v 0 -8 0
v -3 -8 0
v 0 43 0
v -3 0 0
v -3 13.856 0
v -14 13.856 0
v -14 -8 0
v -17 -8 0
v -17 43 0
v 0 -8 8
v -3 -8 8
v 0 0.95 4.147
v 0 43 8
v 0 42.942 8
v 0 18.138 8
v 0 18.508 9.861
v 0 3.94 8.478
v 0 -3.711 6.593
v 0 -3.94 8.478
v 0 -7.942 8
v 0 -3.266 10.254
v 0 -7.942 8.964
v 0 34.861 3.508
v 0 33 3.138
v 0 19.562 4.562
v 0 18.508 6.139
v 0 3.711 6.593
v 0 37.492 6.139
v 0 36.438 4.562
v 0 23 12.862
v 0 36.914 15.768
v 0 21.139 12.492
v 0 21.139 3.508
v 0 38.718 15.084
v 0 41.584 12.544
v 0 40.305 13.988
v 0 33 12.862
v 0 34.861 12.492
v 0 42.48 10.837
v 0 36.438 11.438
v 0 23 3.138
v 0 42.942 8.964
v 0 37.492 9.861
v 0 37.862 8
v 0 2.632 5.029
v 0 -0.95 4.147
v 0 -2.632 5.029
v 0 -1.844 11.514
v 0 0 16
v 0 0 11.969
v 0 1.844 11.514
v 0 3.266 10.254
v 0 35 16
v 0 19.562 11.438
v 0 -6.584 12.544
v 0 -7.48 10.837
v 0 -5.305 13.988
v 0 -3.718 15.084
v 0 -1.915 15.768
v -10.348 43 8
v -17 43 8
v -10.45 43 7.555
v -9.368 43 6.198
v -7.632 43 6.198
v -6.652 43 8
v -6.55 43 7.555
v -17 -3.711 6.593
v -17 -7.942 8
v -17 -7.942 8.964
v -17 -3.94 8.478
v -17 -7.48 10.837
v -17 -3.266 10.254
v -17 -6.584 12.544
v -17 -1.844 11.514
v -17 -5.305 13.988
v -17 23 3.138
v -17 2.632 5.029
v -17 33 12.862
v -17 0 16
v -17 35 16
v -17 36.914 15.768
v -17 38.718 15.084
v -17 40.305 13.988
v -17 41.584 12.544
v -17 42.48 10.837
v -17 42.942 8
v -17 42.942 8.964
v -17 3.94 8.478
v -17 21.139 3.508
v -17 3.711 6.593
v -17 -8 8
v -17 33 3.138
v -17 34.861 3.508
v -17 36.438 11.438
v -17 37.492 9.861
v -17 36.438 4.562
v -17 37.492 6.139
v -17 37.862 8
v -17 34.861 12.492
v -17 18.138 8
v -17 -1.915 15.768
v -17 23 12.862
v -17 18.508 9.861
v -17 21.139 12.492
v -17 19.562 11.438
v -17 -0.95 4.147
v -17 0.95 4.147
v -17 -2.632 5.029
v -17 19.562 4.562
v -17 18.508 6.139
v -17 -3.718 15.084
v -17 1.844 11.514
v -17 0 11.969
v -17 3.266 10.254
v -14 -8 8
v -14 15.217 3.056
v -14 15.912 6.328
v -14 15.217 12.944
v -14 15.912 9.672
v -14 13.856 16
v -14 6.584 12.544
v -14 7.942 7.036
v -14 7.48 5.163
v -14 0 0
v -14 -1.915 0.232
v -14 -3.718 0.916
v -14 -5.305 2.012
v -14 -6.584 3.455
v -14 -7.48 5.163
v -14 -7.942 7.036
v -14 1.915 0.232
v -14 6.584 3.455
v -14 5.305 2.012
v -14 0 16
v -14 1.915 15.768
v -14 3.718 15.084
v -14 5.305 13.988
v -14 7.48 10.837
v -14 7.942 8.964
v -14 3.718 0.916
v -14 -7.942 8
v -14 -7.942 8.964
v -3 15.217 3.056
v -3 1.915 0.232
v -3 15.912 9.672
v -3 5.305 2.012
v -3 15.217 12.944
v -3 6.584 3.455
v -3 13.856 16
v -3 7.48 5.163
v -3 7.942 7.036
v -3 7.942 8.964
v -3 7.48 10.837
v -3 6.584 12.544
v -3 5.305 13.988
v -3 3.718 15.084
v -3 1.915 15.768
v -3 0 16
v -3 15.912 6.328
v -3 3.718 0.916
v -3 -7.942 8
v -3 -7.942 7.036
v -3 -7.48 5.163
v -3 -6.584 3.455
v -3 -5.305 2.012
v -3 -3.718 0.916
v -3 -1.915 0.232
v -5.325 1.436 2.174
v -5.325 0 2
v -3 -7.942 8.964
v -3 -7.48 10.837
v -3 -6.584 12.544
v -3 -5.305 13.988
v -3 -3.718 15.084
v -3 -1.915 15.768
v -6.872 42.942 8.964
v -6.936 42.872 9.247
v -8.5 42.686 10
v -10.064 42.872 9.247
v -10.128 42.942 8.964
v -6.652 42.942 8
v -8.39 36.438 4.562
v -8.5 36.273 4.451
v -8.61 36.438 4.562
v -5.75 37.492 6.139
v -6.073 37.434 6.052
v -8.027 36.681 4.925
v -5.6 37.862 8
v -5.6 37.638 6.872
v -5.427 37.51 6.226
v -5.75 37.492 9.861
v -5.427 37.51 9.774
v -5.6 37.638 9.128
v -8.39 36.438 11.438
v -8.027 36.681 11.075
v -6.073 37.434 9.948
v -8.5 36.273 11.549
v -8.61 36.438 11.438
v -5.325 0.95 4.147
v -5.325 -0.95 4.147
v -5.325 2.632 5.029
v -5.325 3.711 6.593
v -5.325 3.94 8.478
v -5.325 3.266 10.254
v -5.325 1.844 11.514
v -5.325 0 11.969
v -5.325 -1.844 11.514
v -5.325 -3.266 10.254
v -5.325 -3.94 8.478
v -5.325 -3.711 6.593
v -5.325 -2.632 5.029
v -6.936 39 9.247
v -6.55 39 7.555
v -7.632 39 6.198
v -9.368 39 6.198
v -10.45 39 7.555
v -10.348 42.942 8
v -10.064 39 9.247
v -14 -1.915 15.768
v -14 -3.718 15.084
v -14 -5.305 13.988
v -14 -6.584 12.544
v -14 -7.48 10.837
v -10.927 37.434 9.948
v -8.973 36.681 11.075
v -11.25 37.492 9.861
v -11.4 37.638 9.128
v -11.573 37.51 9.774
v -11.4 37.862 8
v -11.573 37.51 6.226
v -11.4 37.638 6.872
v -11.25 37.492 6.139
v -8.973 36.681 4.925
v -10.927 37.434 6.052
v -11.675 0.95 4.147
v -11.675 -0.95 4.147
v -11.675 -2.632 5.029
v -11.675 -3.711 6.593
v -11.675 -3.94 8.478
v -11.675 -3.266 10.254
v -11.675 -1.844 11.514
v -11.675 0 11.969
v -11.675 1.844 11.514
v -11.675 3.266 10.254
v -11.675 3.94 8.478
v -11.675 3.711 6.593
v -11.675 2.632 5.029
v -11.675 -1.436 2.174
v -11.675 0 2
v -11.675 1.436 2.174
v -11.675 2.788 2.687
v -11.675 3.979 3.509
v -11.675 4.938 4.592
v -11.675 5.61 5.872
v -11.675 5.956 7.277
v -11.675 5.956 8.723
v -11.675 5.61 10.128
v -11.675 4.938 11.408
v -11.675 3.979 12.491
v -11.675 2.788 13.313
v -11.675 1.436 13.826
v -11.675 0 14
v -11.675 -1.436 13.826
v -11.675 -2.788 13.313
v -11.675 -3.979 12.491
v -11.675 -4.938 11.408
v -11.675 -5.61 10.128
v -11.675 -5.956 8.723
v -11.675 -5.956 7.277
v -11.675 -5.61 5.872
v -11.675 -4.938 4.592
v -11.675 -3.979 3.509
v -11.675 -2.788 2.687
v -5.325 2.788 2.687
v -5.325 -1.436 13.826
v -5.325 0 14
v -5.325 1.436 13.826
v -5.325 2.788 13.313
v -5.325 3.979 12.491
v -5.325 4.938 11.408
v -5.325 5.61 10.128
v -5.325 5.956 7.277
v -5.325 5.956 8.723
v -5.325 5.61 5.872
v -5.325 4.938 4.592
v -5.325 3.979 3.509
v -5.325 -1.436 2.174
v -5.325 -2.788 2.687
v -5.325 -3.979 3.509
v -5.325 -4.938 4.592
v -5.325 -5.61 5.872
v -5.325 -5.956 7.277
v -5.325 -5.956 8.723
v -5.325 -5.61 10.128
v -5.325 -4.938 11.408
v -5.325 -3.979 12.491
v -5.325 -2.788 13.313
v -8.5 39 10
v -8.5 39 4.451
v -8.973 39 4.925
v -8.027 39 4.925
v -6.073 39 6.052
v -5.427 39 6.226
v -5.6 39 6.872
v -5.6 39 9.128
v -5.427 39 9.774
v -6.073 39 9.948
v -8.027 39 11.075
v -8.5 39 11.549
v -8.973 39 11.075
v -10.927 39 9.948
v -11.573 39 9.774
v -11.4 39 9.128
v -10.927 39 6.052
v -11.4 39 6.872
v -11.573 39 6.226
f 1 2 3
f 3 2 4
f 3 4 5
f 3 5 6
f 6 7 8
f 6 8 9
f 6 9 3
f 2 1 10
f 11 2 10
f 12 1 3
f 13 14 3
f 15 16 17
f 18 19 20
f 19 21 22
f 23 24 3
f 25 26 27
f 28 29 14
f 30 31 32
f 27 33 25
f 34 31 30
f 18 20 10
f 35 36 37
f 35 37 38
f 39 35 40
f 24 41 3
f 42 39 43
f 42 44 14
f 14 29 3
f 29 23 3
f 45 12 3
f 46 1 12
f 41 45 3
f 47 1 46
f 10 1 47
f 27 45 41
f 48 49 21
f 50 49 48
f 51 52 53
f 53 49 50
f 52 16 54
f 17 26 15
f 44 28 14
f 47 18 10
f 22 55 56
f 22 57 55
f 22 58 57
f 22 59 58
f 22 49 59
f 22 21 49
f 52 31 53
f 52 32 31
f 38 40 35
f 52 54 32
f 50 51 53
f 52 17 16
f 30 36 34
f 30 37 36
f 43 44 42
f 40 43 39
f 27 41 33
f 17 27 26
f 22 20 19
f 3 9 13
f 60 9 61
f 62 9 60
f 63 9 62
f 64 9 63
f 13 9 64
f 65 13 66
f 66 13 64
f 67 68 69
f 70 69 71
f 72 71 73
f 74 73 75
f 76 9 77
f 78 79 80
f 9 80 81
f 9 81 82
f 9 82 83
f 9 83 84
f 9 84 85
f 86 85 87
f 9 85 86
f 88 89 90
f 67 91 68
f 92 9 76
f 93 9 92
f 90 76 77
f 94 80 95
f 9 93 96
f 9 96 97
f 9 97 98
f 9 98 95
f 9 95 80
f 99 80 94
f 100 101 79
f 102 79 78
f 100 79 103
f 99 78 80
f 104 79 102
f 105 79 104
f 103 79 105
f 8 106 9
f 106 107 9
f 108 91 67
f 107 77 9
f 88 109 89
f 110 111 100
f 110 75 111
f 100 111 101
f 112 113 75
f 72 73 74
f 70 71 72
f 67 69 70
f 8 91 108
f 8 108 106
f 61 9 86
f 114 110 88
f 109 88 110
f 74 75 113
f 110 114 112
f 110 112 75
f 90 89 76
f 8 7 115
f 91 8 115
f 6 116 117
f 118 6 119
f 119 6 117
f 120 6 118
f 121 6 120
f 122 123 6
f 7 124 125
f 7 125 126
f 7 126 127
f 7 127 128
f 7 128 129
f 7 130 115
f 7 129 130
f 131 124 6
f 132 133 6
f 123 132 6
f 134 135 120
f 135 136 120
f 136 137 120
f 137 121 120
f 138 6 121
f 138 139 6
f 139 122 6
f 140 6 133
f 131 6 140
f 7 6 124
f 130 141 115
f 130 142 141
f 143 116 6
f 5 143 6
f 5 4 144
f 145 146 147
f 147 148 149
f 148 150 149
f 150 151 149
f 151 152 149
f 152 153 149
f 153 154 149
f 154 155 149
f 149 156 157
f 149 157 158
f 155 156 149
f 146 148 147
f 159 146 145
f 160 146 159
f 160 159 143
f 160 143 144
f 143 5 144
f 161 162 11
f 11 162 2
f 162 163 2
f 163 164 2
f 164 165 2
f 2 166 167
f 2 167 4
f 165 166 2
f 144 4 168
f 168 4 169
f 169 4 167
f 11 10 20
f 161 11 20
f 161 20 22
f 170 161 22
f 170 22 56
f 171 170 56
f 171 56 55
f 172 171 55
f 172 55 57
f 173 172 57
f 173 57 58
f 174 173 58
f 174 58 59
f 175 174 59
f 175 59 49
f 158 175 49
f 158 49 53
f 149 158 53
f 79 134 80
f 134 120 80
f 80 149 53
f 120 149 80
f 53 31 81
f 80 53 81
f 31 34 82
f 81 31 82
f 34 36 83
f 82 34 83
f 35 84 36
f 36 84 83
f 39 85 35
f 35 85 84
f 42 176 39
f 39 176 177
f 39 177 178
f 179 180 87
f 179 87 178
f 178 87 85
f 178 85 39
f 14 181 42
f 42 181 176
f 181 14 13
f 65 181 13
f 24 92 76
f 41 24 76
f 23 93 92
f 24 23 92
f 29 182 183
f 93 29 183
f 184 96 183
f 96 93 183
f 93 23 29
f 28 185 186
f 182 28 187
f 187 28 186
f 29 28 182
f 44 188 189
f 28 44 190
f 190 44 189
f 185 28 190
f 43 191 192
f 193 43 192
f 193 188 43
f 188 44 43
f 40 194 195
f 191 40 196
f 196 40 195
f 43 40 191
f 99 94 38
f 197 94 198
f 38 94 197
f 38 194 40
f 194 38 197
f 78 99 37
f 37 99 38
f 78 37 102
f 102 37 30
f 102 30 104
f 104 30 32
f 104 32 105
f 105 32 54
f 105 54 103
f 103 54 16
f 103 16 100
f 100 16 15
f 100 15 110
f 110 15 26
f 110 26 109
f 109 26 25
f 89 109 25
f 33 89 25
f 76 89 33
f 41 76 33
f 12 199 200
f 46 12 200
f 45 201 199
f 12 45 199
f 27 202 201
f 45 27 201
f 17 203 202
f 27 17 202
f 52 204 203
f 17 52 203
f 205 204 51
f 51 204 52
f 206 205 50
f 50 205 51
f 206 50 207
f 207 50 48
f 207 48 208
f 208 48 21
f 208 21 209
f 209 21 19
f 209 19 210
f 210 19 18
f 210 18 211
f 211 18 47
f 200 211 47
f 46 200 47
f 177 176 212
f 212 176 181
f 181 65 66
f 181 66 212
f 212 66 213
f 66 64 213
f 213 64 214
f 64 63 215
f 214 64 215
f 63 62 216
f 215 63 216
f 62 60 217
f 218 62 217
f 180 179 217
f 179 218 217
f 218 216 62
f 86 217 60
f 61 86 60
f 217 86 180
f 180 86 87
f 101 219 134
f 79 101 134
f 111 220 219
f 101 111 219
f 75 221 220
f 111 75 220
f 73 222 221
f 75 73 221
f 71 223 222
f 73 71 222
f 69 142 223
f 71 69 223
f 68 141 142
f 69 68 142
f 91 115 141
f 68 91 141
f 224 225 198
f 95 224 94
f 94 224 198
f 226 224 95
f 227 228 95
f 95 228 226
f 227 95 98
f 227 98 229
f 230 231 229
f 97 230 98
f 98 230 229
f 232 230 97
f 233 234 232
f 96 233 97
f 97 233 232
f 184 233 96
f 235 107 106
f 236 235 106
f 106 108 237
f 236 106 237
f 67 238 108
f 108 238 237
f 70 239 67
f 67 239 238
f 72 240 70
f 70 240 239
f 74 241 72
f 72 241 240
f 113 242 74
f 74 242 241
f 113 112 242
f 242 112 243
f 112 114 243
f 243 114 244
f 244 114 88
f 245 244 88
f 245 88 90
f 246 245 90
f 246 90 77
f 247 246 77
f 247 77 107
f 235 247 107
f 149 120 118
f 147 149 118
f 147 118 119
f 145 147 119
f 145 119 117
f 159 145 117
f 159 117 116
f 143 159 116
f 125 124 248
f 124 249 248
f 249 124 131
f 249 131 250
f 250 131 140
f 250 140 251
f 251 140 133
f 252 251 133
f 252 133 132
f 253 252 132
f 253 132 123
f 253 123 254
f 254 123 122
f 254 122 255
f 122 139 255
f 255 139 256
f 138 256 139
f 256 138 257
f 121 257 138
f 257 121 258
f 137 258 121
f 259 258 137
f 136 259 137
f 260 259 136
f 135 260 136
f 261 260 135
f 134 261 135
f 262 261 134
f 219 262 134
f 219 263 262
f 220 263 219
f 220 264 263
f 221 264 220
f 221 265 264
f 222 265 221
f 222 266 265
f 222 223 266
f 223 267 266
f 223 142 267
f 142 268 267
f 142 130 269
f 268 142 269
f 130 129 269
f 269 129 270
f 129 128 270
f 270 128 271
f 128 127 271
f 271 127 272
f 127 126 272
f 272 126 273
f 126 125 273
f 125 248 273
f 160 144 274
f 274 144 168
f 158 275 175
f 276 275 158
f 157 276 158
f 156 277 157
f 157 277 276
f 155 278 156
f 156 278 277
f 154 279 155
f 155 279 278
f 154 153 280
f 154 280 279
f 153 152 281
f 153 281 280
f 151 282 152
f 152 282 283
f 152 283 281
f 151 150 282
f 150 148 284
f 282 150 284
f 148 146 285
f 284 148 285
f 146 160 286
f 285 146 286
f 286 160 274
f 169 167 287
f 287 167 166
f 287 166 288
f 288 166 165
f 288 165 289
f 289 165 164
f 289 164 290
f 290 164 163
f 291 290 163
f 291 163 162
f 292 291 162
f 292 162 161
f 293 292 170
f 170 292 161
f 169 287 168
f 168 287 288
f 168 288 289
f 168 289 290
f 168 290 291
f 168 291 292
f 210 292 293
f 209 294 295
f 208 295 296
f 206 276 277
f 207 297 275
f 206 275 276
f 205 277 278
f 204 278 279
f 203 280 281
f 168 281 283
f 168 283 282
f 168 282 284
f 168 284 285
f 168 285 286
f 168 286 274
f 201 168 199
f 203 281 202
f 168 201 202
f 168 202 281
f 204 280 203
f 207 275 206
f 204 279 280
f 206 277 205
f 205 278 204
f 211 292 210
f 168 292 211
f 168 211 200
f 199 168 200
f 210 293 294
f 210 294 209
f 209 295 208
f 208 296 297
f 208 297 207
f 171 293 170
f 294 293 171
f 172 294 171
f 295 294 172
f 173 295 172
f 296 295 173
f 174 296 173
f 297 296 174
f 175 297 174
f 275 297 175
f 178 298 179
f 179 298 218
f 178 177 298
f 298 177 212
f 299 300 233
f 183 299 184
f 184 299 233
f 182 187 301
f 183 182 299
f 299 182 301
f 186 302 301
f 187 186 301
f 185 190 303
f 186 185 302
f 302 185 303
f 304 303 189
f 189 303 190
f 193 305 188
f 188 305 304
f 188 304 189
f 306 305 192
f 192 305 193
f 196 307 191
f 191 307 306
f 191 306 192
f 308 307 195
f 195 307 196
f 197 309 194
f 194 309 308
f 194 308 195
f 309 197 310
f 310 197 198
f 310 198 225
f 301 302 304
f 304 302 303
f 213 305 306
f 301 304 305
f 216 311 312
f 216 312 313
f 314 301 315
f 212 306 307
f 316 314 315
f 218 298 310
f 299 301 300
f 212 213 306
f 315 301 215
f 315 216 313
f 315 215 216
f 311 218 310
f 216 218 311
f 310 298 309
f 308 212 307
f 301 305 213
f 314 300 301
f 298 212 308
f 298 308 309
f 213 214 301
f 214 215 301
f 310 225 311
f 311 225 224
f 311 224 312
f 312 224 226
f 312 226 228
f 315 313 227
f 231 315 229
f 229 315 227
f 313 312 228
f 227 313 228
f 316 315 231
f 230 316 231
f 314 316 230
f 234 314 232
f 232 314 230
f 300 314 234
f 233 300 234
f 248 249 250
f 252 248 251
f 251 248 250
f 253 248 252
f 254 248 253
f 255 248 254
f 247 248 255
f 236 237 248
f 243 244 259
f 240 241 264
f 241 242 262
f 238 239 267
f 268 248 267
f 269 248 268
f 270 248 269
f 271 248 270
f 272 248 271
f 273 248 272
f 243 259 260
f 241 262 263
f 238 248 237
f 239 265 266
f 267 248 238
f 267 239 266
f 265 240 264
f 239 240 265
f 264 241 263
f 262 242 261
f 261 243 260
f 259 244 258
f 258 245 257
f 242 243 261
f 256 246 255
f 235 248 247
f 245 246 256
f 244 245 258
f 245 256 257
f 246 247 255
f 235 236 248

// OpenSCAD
// nelsoncs 2013Jun05 - NCSAppSoft.com
// modified to support:
// 1. U.S. measurements for y-idler for 3/8 in. rod, 5/16 in. bolt holding 608ZZG bearing
// 2. "rotate" was causing problems with non-manifold edges around the "fake bearing" 
// 
// Original based on:
// PRUSA iteration3
// Y idler
// GNU GPL v3
// Josef Průša <iam@josefprusa.cz> and contributors
// http://www.reprap.org/wiki/Prusa_Mendel
// http://prusamendel.org

wall_thickness=3;
opening_width=11;
external_width=opening_width+wall_thickness*2;
opening_diameter = 32;
bearing_width = 6.35; 		// 1/4 in.
bearing_ID = 7.9375; 			// 5/16 in.
rod_diameter = 9.525 + 0.2; 	// 3/8 in. + slack space

tensioner_length = 10;

// increase the elongation if the bearing opening intersects
// with the M10 rod opening.
elongation = 1;


module nut(d,h,horizontal=true){
    cornerdiameter =  (d / 2) / cos (180 / 6);
    cylinder(h = h, r = cornerdiameter, $fn = 6);
    if(horizontal){
        for(i = [1:6]){
			rotate([0,0,60*i]) 
			translate([-cornerdiameter-0.2,0,0]) 
			rotate([0,0,-45]) 
			cube([2,2,h]);
        }
    }
}

module y_idler_base(){

	// bearing end
	translate(v = [0,0,0]) 
	cylinder(h = external_width, r=8);	

	// tensioner end
 	translate(v = [0, 20+2+elongation+2,0]) 
	hull() {
		cylinder(h = external_width, r=8);
		translate([0, tensioner_length,0]) 
		cylinder(h = external_width, r=8);
 	}

	// center
 	translate(v = [0, 10+1+elongation/2+tensioner_length/2+1, external_width/2]) 
	cube(
		size = [16, 22+elongation+tensioner_length+2,external_width], 
		center=true);
 		translate(v = [-4, 10+1+elongation/2+tensioner_length/2+1, external_width/2]) 
		cube(size = [8, 16+22+elongation+tensioner_length+2, external_width], center=true);
}

module y_idler_holes(){

	// bearing center hole
 	translate(v = [0,0,]) 
	cylinder(h = external_width, r=bearing_ID/2);

 	difference() {
   		translate(v = [0, 0, wall_thickness]) 
		cylinder(h = opening_width, r=opening_diameter/2);

   		// The fake bearing
   		%translate([0, 0, (external_width/2)-(bearing_width/2)-0.5]) 
		cylinder(h = bearing_width+1, r=(22/2)+2*0.66);

   		// The two bumps around the center of the bearing
   		translate([0,0,wall_thickness]) 
		cylinder(r1=16/2, r2=12/2, h=opening_width/2-bearing_width/2);

   		translate([0,0,external_width-wall_thickness-(opening_width/2-bearing_width/2)]) 
		//rotate([0,180,0]) <<-- caused non-manifold error in slic3r and Blender
		cylinder(r1=6, r2=8, h=opening_width/2-bearing_width/2);
 	}

	// rod slot (hull)
 	translate(v = [0, 20+2+elongation, 0]) 
	hull() {
		cylinder(h = external_width, r=rod_diameter/2);
		
		translate([0, tensioner_length, 0]) 
		cylinder(h = external_width, r=rod_diameter/2);
 	}
	
	// tensioner bolt and nut
 	translate([0, 16+22+elongation+tensioner_length+2-12, external_width/2]) 
	rotate([90, 0, 0]) {
		nut(5.8, 5);
		translate([0, 0, -5]) cylinder(r=2, h=10);
 	}
}

// Final part
module y_idler(){
 	translate(v = [0, 0, 8])
	rotate([0, -90, 0]) difference(){
  		y_idler_base();
  		y_idler_holes();
 	}
}

y_idler();
